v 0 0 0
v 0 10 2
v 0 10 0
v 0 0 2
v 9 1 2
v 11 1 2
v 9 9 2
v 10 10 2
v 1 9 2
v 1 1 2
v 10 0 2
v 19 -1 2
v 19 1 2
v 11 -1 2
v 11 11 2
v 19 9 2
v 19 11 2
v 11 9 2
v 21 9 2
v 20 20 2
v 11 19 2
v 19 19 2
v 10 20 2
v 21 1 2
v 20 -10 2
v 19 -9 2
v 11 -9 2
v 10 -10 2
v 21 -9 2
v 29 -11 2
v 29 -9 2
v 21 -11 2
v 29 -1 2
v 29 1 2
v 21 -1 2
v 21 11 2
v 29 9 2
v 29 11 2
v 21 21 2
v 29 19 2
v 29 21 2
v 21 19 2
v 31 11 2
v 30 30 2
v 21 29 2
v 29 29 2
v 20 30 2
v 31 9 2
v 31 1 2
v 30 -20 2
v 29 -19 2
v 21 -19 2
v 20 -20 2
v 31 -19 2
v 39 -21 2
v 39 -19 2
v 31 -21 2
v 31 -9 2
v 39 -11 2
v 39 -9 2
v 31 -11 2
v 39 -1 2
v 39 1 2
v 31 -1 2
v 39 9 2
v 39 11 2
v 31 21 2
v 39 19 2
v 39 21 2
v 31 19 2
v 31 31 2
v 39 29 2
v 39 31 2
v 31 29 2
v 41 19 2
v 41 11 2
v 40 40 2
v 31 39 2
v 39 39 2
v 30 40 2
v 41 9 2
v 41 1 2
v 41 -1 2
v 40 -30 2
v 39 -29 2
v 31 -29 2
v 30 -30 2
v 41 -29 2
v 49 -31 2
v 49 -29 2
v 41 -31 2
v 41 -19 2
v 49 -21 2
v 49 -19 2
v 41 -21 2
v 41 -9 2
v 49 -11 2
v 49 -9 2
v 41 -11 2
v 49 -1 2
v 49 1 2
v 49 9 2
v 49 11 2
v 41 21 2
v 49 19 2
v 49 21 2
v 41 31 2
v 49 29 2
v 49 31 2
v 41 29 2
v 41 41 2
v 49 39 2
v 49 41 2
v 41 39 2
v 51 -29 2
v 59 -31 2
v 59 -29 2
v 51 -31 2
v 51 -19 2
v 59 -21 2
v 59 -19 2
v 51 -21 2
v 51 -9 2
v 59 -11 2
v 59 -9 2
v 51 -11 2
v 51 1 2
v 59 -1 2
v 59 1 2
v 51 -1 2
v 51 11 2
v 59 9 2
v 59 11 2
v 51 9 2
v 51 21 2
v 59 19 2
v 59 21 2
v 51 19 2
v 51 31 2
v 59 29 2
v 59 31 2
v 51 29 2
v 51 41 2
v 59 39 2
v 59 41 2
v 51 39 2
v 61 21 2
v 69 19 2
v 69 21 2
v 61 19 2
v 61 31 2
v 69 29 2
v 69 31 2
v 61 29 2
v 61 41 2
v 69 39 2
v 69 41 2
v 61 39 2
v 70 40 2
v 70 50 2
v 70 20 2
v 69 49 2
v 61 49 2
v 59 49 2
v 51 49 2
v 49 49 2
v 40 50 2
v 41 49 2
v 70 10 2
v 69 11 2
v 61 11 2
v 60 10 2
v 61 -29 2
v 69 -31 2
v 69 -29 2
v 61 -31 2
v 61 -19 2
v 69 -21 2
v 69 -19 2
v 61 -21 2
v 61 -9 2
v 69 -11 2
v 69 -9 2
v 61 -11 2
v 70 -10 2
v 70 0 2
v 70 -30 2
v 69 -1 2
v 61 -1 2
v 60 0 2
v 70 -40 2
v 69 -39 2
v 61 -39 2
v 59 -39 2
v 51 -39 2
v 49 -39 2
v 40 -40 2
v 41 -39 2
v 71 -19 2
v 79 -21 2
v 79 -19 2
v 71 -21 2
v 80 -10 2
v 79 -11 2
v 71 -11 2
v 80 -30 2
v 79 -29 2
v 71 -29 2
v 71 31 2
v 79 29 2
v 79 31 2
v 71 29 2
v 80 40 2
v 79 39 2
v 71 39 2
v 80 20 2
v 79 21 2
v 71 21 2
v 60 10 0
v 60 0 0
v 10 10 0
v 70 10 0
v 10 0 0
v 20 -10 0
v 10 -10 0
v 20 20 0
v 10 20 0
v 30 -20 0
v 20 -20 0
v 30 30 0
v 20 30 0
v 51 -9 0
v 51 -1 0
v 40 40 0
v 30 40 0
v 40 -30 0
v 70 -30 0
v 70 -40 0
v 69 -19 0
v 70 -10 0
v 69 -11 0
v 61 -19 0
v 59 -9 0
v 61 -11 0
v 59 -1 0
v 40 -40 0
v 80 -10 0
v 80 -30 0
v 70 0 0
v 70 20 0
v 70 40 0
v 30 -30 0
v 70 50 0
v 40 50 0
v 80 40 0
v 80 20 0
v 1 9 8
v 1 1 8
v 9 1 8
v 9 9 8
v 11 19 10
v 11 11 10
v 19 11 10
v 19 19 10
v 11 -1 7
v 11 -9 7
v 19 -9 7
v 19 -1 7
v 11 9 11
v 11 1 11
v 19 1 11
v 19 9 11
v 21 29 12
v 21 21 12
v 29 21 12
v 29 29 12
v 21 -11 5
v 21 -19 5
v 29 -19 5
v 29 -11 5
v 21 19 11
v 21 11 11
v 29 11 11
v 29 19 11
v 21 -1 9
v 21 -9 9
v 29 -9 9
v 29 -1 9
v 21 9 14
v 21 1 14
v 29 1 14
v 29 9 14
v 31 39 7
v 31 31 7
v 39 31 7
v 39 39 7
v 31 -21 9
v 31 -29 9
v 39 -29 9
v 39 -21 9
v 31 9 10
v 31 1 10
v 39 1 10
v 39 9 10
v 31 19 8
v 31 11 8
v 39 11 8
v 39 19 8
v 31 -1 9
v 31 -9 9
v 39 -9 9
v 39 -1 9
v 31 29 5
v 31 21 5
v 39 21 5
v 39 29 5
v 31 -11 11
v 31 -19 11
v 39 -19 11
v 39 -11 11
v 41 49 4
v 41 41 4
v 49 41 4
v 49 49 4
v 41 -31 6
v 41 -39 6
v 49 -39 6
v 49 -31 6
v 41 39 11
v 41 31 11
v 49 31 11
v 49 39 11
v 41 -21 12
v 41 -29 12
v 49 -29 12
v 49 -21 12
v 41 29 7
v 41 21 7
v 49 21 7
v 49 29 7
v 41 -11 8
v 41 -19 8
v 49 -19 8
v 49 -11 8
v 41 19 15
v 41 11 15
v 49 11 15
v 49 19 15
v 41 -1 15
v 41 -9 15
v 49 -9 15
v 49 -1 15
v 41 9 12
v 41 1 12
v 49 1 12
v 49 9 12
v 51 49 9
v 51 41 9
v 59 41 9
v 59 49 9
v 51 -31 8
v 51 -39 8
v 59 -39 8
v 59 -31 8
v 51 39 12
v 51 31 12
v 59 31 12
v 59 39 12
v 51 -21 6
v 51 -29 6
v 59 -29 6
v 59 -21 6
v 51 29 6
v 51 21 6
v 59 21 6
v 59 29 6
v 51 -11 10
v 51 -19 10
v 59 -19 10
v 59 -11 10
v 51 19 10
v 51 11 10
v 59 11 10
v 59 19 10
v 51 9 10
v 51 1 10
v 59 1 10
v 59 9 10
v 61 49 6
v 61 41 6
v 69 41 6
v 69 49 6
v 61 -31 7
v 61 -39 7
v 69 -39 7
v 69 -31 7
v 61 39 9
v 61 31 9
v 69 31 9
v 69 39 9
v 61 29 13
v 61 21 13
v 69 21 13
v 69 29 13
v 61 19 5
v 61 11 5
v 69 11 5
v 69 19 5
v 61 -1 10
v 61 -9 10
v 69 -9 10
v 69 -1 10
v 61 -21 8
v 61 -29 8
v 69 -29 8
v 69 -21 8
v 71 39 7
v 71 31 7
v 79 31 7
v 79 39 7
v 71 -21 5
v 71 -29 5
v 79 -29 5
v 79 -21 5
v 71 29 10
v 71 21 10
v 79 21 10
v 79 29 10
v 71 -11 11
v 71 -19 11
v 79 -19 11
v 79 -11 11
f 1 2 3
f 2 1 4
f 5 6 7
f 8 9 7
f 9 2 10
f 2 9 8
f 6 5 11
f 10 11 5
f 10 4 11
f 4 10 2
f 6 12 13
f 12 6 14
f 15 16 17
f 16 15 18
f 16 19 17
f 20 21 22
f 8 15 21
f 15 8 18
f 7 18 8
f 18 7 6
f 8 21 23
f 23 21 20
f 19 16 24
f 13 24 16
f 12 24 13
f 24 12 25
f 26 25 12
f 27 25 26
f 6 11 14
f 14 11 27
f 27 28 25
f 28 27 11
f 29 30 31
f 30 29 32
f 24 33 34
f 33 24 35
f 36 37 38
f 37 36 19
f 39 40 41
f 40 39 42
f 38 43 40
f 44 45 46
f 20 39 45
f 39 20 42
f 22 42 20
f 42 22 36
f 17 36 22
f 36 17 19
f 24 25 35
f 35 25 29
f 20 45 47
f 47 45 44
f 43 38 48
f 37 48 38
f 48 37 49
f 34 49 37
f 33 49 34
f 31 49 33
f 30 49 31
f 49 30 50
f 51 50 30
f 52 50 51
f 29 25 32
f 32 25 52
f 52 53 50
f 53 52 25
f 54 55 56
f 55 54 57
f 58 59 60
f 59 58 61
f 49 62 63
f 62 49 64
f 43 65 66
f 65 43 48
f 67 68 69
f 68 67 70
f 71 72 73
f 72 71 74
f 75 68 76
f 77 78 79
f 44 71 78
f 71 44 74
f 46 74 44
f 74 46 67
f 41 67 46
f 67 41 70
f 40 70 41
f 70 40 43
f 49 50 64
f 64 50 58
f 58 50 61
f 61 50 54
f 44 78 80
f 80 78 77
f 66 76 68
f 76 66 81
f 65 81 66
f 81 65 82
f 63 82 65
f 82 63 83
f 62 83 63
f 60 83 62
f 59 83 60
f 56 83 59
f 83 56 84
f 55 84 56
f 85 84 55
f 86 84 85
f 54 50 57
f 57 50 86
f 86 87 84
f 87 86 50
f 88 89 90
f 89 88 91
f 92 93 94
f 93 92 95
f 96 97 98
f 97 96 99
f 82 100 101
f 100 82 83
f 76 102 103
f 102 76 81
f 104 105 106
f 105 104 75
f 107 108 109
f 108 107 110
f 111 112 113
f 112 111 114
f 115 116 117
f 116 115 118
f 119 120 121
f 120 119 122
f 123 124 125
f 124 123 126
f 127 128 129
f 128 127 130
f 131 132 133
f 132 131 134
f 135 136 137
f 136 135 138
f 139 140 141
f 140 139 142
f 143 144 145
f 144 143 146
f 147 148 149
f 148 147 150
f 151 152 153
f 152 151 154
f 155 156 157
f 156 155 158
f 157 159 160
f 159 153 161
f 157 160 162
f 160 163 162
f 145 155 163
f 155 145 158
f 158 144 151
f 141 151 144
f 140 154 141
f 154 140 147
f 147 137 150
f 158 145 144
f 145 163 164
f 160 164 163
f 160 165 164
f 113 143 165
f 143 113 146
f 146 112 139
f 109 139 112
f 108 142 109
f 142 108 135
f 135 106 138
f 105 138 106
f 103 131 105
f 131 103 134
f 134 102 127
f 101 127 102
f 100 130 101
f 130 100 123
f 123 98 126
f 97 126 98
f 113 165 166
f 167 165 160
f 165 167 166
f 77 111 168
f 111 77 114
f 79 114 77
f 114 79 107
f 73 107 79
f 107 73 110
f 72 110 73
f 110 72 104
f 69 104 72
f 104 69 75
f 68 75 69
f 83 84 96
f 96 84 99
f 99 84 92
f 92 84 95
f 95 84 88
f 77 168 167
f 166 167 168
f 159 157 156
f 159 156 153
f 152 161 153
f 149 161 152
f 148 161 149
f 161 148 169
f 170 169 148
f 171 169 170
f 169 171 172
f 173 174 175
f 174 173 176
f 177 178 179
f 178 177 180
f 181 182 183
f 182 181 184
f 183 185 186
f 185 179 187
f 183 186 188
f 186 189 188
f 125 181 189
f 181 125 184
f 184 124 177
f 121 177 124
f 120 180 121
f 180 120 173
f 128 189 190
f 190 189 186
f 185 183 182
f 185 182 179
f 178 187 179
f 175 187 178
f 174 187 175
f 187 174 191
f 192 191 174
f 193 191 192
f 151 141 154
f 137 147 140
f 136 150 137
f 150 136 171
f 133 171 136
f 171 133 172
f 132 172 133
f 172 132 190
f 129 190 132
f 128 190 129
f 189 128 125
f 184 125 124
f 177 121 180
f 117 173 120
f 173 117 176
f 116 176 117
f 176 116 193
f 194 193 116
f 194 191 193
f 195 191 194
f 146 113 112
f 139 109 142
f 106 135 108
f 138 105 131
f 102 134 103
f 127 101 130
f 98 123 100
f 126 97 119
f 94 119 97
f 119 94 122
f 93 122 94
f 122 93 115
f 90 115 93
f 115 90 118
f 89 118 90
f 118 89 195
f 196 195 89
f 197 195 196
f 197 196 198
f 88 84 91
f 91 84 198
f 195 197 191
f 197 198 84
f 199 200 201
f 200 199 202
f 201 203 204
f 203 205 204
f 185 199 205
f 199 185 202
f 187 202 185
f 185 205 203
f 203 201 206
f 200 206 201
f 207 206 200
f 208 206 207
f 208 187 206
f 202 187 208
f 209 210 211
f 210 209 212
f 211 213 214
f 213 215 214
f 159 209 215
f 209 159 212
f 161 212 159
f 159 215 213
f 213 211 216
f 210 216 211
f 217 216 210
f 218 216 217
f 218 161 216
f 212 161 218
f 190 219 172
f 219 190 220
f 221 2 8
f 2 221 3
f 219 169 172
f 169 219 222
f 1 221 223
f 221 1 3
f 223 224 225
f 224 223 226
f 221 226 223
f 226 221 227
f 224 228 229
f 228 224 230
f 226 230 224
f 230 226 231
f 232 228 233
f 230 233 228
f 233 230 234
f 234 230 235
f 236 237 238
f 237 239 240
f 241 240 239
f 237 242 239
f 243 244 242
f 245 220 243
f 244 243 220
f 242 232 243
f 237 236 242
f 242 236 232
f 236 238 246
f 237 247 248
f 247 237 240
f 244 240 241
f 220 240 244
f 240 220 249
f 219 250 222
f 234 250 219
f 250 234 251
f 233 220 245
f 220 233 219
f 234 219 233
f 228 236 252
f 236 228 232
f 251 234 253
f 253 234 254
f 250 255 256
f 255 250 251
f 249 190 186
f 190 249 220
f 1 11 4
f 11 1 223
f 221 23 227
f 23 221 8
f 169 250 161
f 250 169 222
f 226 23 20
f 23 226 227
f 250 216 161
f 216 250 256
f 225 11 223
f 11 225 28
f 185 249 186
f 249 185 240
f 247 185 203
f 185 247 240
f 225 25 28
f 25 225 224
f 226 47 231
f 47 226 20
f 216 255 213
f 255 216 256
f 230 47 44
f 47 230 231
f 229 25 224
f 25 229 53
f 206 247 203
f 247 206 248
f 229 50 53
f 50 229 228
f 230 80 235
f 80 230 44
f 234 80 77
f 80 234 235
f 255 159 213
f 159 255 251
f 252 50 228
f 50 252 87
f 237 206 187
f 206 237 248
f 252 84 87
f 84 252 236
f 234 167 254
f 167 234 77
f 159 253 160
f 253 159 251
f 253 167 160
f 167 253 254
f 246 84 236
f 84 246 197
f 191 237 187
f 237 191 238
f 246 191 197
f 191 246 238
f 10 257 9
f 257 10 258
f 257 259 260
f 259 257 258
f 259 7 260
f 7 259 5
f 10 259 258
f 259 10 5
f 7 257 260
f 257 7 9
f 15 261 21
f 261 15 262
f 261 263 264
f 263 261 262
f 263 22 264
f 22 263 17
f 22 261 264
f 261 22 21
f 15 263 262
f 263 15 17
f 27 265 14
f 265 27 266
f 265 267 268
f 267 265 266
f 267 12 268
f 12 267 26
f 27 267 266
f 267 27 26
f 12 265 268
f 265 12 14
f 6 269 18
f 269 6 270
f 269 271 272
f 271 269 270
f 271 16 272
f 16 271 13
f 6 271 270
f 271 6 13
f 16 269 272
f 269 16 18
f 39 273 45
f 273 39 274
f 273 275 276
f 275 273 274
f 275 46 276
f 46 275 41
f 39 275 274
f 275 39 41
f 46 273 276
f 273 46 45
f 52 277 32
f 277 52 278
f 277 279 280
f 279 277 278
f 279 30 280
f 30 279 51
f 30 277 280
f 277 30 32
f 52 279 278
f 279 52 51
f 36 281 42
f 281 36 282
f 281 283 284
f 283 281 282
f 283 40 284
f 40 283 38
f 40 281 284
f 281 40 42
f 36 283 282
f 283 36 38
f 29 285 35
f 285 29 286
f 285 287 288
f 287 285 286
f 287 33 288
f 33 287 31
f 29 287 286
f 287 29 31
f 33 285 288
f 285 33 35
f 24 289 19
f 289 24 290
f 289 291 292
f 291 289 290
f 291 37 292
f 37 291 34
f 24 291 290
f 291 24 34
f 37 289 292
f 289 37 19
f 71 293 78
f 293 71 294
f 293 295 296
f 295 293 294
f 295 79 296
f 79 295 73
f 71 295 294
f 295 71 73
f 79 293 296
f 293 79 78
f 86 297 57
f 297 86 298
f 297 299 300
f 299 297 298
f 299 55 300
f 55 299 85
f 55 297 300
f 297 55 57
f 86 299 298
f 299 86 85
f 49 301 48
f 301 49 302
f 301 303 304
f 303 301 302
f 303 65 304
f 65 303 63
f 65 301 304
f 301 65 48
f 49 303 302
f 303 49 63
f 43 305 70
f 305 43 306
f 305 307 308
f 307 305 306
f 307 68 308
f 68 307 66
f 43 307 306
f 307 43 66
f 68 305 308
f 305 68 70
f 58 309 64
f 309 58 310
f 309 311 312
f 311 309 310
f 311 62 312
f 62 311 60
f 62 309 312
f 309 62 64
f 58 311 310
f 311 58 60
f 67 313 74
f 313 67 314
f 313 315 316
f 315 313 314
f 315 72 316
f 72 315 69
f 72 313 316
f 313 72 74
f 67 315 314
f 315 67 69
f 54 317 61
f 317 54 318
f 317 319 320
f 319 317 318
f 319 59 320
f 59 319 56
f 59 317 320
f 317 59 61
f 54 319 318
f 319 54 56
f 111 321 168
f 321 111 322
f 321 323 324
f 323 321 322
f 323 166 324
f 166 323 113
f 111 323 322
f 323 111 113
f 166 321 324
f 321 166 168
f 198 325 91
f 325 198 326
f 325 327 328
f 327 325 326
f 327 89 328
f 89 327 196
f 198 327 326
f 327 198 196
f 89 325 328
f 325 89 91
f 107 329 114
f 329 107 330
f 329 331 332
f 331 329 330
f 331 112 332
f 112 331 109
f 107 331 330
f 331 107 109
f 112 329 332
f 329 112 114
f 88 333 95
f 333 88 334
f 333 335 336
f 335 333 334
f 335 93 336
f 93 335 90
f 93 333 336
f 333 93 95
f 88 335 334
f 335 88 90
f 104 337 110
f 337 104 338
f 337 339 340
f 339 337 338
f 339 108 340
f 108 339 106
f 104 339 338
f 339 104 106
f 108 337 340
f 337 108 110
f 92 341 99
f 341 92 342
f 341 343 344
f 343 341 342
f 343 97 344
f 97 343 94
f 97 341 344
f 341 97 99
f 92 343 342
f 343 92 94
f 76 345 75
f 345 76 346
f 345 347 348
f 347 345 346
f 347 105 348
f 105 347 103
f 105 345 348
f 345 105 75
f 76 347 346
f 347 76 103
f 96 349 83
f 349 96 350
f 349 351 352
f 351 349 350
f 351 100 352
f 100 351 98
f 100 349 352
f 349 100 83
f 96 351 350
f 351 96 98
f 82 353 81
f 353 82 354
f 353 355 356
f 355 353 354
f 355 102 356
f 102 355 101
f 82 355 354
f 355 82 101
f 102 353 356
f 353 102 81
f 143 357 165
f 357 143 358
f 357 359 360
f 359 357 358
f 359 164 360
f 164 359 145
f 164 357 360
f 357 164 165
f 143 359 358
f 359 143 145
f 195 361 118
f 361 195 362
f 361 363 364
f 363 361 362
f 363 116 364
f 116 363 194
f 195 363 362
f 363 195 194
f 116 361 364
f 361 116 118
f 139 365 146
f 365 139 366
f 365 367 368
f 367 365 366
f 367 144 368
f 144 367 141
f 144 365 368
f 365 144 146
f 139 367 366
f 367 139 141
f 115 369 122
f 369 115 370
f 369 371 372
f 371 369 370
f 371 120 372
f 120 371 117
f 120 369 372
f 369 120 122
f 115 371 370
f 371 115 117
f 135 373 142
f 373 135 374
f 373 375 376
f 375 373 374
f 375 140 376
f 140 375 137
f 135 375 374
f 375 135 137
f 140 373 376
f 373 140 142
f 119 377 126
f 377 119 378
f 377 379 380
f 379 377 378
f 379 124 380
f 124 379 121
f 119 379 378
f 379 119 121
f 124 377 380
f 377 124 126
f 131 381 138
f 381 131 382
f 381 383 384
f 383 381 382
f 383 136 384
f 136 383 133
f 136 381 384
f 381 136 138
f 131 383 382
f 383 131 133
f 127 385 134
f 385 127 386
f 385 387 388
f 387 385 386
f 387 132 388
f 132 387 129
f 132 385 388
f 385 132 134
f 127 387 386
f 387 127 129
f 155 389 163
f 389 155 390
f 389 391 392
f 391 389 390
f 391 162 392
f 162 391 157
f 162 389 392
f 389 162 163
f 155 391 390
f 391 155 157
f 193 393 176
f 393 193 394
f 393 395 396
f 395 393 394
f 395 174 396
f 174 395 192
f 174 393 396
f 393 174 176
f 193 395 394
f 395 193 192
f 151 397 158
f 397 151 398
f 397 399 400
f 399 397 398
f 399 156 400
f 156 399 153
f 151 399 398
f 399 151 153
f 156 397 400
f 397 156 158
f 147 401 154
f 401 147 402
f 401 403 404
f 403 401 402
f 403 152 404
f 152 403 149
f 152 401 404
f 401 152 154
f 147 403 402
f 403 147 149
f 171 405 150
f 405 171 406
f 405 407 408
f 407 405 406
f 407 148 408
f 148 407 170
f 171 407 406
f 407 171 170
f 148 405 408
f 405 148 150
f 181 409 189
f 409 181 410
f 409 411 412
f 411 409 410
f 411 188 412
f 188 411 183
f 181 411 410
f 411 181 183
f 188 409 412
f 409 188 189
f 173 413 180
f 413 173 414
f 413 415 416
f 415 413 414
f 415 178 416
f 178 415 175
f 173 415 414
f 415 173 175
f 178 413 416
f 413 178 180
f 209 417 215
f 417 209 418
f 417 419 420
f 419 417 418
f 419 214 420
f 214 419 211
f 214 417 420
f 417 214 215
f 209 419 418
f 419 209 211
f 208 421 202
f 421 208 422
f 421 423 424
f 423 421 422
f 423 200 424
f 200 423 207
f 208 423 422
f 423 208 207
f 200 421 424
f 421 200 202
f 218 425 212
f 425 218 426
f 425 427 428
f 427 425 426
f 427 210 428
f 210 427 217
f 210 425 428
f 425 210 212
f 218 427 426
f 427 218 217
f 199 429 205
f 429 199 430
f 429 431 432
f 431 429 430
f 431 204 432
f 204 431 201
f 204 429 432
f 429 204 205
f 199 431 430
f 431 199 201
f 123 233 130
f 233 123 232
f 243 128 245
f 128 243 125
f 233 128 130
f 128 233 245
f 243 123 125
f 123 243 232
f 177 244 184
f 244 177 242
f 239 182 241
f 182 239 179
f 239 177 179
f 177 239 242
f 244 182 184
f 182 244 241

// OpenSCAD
hrana = 10;
sloup = 8;
posun = (hrana - sloup) / 2;
difference(){
  union(){

translate([hrana*0, hrana*0, 0]) cube([hrana*6, hrana, 2]);
translate([hrana*1, hrana*1, 0]) cube([hrana*6, hrana, 2]);
translate([hrana*1, hrana*-1, 0]) cube([hrana*6, hrana, 2]);
translate([hrana*2, hrana*2, 0]) cube([hrana*6, hrana, 2]);
translate([hrana*2, hrana*-2, 0]) cube([hrana*6, hrana, 2]);
translate([hrana*3, hrana*3, 0]) cube([hrana*5, hrana, 2]);
translate([hrana*3, hrana*-3, 0]) cube([hrana*5, hrana, 2]);
translate([hrana*4, hrana*4, 0]) cube([hrana*3, hrana, 2]);
translate([hrana*4, hrana*-4, 0]) cube([hrana*3, hrana, 2]);

translate([hrana*0 + posun, hrana*0 + posun, 0]) cube([sloup, sloup, 8]);

translate([hrana*1 + posun, hrana*1 + posun, 0]) cube([sloup, sloup, 10]);
translate([hrana*1 + posun, hrana*-1 + posun, 0]) cube([sloup, sloup, 7]);
translate([hrana*1 + posun, hrana*0 + posun, 0]) cube([sloup, sloup, 11]);

translate([hrana*2 + posun, hrana*2 + posun, 0]) cube([sloup, sloup, 12]);
translate([hrana*2 + posun, hrana*-2 + posun, 0]) cube([sloup, sloup, 5]);
translate([hrana*2 + posun, hrana*1 + posun, 0]) cube([sloup, sloup, 11]);
translate([hrana*2 + posun, hrana*-1 + posun, 0]) cube([sloup, sloup, 9]);
translate([hrana*2 + posun, hrana*-0 + posun, 0]) cube([sloup, sloup, 14]);

translate([hrana*3 + posun, hrana*3 + posun, 0]) cube([sloup, sloup, 7]);
translate([hrana*3 + posun, hrana*-3 + posun, 0]) cube([sloup, sloup, 9]);
translate([hrana*3 + posun, hrana*0 + posun, 0]) cube([sloup, sloup, 10]);
translate([hrana*3 + posun, hrana*1 + posun, 0]) cube([sloup, sloup, 8]);
translate([hrana*3 + posun, hrana*-1 + posun, 0]) cube([sloup, sloup, 9]);
translate([hrana*3 + posun, hrana*2 + posun, 0]) cube([sloup, sloup, 5]);
translate([hrana*3 + posun, hrana*-2 + posun, 0]) cube([sloup, sloup, 11]);

translate([hrana*4 + posun, hrana*4 + posun, 0]) cube([sloup, sloup, 4]);
translate([hrana*4 + posun, hrana*-4 + posun, 0]) cube([sloup, sloup, 6]);
translate([hrana*4 + posun, hrana*3 + posun, 0]) cube([sloup, sloup, 11]);
translate([hrana*4 + posun, hrana*-3 + posun, 0]) cube([sloup, sloup, 12]);
translate([hrana*4 + posun, hrana*2 + posun, 0]) cube([sloup, sloup, 7]);
translate([hrana*4 + posun, hrana*-2 + posun, 0]) cube([sloup, sloup, 8]);
translate([hrana*4 + posun, hrana*1 + posun, 0]) cube([sloup, sloup, 15]);
translate([hrana*4 + posun, hrana*-1 + posun, 0]) cube([sloup, sloup, 15]);
translate([hrana*4 + posun, hrana*0 + posun, 0]) cube([sloup, sloup, 12]);

translate([hrana*5 + posun, hrana*4 + posun, 0]) cube([sloup, sloup, 9]);
translate([hrana*5 + posun, hrana*-4 + posun, 0]) cube([sloup, sloup, 8]);
translate([hrana*5 + posun, hrana*3 + posun, 0]) cube([sloup, sloup, 12]);
translate([hrana*5 + posun, hrana*-3 + posun, 0]) cube([sloup, sloup, 6]);
translate([hrana*5 + posun, hrana*2 + posun, 0]) cube([sloup, sloup, 6]);
translate([hrana*5 + posun, hrana*-2 + posun, 0]) cube([sloup, sloup, 10]);
translate([hrana*5 + posun, hrana*1 + posun, 0]) cube([sloup, sloup, 10]);
translate([hrana*5 + posun, hrana*0 + posun, 0]) cube([sloup, sloup, 10]);

translate([hrana*6 + posun, hrana*4 + posun, 0]) cube([sloup, sloup, 6]);
translate([hrana*6 + posun, hrana*-4 + posun, 0]) cube([sloup, sloup, 7]);
translate([hrana*6 + posun, hrana*3 + posun, 0]) cube([sloup, sloup, 9]);
translate([hrana*6 + posun, hrana*2 + posun, 0]) cube([sloup, sloup, 13]);
translate([hrana*6 + posun, hrana*1 + posun, 0]) cube([sloup, sloup, 5]);
translate([hrana*6 + posun, hrana*-1 + posun, 0]) cube([sloup, sloup, 10]);
translate([hrana*6 + posun, hrana*-3 + posun, 0]) cube([sloup, sloup, 8]);


translate([hrana*7 + posun, hrana*3 + posun, 0]) cube([sloup, sloup, 7]);
translate([hrana*7 + posun, hrana*-3 + posun, 0]) cube([sloup, sloup, 5]);
translate([hrana*7 + posun, hrana*2 + posun, 0]) cube([sloup, sloup, 10]);
translate([hrana*7 + posun, hrana*-2 + posun, 0]) cube([sloup, sloup, 11]);
}
translate([hrana*5 + posun, hrana*-1 + posun, 0]) cube([sloup, sloup, 2]);
translate([hrana*6 + posun, hrana*-2 + posun, 0]) cube([sloup, sloup, 2]);
}
